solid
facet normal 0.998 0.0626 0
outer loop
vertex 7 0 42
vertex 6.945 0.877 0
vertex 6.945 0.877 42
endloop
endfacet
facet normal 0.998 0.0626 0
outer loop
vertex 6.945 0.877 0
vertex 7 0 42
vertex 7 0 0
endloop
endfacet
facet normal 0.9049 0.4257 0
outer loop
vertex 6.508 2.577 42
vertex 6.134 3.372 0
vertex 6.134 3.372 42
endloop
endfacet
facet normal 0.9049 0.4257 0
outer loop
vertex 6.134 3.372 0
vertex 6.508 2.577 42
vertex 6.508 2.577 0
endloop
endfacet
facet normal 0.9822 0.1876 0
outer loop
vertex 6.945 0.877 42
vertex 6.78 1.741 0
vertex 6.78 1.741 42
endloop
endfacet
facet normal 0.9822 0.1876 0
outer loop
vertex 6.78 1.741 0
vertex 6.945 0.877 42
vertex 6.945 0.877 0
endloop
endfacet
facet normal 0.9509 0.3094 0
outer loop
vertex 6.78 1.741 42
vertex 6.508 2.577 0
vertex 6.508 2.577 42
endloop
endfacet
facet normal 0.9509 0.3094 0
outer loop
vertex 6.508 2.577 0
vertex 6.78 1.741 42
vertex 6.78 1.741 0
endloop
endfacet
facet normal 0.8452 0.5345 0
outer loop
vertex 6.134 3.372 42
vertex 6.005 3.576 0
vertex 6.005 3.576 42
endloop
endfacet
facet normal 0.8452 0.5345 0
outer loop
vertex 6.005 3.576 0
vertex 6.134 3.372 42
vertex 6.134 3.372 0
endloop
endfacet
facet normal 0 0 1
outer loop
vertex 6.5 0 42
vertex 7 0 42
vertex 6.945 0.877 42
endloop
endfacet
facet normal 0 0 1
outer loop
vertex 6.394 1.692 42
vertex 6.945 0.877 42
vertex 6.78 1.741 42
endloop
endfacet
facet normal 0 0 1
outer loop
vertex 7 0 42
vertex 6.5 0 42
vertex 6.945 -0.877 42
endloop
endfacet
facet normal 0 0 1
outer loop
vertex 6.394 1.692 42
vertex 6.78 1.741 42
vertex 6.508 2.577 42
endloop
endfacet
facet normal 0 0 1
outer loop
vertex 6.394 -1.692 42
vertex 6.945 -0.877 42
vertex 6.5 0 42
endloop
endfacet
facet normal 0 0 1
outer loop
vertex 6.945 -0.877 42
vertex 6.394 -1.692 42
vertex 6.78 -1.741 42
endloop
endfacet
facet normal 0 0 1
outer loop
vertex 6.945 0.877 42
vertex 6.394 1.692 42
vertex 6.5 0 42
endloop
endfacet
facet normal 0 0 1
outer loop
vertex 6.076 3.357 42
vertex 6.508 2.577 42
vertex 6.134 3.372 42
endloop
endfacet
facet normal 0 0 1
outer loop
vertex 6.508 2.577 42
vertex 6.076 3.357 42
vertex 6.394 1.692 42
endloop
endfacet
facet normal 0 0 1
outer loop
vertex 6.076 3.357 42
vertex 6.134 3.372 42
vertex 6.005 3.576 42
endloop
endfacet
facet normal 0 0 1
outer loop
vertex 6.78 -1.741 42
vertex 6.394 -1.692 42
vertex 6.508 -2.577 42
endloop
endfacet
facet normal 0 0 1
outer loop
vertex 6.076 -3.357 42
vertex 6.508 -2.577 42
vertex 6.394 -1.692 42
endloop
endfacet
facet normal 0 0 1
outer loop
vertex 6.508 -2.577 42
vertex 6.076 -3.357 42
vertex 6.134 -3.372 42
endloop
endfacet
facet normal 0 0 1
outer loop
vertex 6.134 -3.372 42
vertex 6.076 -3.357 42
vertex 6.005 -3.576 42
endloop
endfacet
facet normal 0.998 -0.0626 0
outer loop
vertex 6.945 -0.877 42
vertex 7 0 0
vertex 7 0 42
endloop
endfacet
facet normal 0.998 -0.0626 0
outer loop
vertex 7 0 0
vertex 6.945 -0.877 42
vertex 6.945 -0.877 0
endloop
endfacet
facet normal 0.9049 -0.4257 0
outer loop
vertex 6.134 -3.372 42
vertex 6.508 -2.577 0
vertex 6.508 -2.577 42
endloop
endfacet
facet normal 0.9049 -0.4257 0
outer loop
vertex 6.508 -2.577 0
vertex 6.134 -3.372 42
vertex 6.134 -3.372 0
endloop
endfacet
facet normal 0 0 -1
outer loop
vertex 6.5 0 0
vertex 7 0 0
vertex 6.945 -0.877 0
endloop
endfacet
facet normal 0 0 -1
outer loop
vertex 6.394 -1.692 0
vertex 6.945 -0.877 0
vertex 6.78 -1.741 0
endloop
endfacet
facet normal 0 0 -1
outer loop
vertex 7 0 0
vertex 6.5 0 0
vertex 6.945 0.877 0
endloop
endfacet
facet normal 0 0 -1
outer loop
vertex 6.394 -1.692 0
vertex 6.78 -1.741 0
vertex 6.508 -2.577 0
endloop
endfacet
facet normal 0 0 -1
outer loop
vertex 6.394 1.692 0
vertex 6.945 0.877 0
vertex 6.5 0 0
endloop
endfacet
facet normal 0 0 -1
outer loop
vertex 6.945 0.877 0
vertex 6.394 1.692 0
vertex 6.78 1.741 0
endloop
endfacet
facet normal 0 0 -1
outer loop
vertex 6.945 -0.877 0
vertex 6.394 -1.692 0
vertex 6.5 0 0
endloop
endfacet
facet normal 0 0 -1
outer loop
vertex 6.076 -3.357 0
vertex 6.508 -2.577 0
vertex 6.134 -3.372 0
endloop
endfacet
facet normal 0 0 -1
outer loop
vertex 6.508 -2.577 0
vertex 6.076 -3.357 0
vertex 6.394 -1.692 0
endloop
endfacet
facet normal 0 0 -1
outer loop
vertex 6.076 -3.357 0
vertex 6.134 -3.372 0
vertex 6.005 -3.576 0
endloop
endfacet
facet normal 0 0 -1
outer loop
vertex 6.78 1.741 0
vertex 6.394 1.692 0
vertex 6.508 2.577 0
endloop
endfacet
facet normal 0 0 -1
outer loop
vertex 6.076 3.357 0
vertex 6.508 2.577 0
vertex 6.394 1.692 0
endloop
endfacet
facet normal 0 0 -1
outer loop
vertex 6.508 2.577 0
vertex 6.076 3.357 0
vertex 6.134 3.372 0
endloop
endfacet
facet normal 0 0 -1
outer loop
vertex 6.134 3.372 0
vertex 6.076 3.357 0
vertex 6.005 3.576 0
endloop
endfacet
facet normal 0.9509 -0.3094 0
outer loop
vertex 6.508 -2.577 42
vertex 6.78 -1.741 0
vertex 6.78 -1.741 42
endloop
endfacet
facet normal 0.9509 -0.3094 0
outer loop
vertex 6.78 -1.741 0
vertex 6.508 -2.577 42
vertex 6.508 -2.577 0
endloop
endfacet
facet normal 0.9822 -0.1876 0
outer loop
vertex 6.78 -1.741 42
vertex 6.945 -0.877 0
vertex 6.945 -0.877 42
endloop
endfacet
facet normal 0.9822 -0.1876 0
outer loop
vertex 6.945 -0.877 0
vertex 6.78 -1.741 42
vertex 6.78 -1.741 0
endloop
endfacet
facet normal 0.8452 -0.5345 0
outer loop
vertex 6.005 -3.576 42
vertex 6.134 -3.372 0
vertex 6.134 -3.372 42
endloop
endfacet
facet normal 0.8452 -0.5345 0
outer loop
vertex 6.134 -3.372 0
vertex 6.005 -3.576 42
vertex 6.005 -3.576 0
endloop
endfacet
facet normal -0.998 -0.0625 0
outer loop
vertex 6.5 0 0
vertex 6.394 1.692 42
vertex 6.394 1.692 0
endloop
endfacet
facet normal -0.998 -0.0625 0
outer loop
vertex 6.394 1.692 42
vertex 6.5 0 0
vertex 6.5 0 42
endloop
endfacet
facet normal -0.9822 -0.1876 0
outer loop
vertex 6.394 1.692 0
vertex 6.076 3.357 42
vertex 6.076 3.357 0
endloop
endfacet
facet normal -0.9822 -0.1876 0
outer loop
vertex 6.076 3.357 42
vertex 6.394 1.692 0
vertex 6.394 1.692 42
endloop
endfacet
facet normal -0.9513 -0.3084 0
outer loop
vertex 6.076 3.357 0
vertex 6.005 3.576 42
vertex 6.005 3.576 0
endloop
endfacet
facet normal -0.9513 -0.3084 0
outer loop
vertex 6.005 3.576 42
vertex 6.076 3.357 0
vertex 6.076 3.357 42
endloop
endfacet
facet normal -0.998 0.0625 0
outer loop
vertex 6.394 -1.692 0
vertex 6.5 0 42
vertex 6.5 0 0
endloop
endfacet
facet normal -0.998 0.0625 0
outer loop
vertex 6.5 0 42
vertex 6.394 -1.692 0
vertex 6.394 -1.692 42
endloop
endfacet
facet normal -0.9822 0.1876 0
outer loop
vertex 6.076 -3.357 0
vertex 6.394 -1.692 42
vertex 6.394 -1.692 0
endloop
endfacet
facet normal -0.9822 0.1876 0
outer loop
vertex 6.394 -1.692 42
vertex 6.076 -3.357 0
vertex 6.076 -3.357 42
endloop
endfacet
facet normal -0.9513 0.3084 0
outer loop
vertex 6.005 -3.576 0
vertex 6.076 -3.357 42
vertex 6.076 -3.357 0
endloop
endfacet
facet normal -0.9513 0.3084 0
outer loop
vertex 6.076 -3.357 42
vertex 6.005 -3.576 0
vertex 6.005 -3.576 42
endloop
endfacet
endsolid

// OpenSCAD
$fn = 50;


difference() {
	union() {
		cylinder(h = 42, r = 7.0000000000);
		translate(v = [-10.0000000000, 0, 0]) {
			cylinder(h = 42, r = 7.0000000000);
		}
	}
	union() {
		cylinder(h = 42, r = 3.2500000000);
		cylinder(h = 42, r = 1.8000000000);
		cylinder(h = 42, r = 1.8000000000);
		cylinder(h = 42, r = 1.8000000000);
		translate(v = [-14.5000000000, 0, 0]) {
			hull() {
				translate(v = [-3.7500000000, 0.0000000000, 0]) {
					cylinder(h = 42, r = 7.5000000000);
				}
				translate(v = [3.7500000000, 0.0000000000, 0]) {
					cylinder(h = 42, r = 7.5000000000);
				}
				translate(v = [-3.7500000000, -0.0000000000, 0]) {
					cylinder(h = 42, r = 7.5000000000);
				}
				translate(v = [3.7500000000, -0.0000000000, 0]) {
					cylinder(h = 42, r = 7.5000000000);
				}
			}
		}
		translate(v = [-7.0000000000, 0, 0.0000000000]) {
			cylinder(h = 42, r = 13.5000000000);
		}
	}
}
